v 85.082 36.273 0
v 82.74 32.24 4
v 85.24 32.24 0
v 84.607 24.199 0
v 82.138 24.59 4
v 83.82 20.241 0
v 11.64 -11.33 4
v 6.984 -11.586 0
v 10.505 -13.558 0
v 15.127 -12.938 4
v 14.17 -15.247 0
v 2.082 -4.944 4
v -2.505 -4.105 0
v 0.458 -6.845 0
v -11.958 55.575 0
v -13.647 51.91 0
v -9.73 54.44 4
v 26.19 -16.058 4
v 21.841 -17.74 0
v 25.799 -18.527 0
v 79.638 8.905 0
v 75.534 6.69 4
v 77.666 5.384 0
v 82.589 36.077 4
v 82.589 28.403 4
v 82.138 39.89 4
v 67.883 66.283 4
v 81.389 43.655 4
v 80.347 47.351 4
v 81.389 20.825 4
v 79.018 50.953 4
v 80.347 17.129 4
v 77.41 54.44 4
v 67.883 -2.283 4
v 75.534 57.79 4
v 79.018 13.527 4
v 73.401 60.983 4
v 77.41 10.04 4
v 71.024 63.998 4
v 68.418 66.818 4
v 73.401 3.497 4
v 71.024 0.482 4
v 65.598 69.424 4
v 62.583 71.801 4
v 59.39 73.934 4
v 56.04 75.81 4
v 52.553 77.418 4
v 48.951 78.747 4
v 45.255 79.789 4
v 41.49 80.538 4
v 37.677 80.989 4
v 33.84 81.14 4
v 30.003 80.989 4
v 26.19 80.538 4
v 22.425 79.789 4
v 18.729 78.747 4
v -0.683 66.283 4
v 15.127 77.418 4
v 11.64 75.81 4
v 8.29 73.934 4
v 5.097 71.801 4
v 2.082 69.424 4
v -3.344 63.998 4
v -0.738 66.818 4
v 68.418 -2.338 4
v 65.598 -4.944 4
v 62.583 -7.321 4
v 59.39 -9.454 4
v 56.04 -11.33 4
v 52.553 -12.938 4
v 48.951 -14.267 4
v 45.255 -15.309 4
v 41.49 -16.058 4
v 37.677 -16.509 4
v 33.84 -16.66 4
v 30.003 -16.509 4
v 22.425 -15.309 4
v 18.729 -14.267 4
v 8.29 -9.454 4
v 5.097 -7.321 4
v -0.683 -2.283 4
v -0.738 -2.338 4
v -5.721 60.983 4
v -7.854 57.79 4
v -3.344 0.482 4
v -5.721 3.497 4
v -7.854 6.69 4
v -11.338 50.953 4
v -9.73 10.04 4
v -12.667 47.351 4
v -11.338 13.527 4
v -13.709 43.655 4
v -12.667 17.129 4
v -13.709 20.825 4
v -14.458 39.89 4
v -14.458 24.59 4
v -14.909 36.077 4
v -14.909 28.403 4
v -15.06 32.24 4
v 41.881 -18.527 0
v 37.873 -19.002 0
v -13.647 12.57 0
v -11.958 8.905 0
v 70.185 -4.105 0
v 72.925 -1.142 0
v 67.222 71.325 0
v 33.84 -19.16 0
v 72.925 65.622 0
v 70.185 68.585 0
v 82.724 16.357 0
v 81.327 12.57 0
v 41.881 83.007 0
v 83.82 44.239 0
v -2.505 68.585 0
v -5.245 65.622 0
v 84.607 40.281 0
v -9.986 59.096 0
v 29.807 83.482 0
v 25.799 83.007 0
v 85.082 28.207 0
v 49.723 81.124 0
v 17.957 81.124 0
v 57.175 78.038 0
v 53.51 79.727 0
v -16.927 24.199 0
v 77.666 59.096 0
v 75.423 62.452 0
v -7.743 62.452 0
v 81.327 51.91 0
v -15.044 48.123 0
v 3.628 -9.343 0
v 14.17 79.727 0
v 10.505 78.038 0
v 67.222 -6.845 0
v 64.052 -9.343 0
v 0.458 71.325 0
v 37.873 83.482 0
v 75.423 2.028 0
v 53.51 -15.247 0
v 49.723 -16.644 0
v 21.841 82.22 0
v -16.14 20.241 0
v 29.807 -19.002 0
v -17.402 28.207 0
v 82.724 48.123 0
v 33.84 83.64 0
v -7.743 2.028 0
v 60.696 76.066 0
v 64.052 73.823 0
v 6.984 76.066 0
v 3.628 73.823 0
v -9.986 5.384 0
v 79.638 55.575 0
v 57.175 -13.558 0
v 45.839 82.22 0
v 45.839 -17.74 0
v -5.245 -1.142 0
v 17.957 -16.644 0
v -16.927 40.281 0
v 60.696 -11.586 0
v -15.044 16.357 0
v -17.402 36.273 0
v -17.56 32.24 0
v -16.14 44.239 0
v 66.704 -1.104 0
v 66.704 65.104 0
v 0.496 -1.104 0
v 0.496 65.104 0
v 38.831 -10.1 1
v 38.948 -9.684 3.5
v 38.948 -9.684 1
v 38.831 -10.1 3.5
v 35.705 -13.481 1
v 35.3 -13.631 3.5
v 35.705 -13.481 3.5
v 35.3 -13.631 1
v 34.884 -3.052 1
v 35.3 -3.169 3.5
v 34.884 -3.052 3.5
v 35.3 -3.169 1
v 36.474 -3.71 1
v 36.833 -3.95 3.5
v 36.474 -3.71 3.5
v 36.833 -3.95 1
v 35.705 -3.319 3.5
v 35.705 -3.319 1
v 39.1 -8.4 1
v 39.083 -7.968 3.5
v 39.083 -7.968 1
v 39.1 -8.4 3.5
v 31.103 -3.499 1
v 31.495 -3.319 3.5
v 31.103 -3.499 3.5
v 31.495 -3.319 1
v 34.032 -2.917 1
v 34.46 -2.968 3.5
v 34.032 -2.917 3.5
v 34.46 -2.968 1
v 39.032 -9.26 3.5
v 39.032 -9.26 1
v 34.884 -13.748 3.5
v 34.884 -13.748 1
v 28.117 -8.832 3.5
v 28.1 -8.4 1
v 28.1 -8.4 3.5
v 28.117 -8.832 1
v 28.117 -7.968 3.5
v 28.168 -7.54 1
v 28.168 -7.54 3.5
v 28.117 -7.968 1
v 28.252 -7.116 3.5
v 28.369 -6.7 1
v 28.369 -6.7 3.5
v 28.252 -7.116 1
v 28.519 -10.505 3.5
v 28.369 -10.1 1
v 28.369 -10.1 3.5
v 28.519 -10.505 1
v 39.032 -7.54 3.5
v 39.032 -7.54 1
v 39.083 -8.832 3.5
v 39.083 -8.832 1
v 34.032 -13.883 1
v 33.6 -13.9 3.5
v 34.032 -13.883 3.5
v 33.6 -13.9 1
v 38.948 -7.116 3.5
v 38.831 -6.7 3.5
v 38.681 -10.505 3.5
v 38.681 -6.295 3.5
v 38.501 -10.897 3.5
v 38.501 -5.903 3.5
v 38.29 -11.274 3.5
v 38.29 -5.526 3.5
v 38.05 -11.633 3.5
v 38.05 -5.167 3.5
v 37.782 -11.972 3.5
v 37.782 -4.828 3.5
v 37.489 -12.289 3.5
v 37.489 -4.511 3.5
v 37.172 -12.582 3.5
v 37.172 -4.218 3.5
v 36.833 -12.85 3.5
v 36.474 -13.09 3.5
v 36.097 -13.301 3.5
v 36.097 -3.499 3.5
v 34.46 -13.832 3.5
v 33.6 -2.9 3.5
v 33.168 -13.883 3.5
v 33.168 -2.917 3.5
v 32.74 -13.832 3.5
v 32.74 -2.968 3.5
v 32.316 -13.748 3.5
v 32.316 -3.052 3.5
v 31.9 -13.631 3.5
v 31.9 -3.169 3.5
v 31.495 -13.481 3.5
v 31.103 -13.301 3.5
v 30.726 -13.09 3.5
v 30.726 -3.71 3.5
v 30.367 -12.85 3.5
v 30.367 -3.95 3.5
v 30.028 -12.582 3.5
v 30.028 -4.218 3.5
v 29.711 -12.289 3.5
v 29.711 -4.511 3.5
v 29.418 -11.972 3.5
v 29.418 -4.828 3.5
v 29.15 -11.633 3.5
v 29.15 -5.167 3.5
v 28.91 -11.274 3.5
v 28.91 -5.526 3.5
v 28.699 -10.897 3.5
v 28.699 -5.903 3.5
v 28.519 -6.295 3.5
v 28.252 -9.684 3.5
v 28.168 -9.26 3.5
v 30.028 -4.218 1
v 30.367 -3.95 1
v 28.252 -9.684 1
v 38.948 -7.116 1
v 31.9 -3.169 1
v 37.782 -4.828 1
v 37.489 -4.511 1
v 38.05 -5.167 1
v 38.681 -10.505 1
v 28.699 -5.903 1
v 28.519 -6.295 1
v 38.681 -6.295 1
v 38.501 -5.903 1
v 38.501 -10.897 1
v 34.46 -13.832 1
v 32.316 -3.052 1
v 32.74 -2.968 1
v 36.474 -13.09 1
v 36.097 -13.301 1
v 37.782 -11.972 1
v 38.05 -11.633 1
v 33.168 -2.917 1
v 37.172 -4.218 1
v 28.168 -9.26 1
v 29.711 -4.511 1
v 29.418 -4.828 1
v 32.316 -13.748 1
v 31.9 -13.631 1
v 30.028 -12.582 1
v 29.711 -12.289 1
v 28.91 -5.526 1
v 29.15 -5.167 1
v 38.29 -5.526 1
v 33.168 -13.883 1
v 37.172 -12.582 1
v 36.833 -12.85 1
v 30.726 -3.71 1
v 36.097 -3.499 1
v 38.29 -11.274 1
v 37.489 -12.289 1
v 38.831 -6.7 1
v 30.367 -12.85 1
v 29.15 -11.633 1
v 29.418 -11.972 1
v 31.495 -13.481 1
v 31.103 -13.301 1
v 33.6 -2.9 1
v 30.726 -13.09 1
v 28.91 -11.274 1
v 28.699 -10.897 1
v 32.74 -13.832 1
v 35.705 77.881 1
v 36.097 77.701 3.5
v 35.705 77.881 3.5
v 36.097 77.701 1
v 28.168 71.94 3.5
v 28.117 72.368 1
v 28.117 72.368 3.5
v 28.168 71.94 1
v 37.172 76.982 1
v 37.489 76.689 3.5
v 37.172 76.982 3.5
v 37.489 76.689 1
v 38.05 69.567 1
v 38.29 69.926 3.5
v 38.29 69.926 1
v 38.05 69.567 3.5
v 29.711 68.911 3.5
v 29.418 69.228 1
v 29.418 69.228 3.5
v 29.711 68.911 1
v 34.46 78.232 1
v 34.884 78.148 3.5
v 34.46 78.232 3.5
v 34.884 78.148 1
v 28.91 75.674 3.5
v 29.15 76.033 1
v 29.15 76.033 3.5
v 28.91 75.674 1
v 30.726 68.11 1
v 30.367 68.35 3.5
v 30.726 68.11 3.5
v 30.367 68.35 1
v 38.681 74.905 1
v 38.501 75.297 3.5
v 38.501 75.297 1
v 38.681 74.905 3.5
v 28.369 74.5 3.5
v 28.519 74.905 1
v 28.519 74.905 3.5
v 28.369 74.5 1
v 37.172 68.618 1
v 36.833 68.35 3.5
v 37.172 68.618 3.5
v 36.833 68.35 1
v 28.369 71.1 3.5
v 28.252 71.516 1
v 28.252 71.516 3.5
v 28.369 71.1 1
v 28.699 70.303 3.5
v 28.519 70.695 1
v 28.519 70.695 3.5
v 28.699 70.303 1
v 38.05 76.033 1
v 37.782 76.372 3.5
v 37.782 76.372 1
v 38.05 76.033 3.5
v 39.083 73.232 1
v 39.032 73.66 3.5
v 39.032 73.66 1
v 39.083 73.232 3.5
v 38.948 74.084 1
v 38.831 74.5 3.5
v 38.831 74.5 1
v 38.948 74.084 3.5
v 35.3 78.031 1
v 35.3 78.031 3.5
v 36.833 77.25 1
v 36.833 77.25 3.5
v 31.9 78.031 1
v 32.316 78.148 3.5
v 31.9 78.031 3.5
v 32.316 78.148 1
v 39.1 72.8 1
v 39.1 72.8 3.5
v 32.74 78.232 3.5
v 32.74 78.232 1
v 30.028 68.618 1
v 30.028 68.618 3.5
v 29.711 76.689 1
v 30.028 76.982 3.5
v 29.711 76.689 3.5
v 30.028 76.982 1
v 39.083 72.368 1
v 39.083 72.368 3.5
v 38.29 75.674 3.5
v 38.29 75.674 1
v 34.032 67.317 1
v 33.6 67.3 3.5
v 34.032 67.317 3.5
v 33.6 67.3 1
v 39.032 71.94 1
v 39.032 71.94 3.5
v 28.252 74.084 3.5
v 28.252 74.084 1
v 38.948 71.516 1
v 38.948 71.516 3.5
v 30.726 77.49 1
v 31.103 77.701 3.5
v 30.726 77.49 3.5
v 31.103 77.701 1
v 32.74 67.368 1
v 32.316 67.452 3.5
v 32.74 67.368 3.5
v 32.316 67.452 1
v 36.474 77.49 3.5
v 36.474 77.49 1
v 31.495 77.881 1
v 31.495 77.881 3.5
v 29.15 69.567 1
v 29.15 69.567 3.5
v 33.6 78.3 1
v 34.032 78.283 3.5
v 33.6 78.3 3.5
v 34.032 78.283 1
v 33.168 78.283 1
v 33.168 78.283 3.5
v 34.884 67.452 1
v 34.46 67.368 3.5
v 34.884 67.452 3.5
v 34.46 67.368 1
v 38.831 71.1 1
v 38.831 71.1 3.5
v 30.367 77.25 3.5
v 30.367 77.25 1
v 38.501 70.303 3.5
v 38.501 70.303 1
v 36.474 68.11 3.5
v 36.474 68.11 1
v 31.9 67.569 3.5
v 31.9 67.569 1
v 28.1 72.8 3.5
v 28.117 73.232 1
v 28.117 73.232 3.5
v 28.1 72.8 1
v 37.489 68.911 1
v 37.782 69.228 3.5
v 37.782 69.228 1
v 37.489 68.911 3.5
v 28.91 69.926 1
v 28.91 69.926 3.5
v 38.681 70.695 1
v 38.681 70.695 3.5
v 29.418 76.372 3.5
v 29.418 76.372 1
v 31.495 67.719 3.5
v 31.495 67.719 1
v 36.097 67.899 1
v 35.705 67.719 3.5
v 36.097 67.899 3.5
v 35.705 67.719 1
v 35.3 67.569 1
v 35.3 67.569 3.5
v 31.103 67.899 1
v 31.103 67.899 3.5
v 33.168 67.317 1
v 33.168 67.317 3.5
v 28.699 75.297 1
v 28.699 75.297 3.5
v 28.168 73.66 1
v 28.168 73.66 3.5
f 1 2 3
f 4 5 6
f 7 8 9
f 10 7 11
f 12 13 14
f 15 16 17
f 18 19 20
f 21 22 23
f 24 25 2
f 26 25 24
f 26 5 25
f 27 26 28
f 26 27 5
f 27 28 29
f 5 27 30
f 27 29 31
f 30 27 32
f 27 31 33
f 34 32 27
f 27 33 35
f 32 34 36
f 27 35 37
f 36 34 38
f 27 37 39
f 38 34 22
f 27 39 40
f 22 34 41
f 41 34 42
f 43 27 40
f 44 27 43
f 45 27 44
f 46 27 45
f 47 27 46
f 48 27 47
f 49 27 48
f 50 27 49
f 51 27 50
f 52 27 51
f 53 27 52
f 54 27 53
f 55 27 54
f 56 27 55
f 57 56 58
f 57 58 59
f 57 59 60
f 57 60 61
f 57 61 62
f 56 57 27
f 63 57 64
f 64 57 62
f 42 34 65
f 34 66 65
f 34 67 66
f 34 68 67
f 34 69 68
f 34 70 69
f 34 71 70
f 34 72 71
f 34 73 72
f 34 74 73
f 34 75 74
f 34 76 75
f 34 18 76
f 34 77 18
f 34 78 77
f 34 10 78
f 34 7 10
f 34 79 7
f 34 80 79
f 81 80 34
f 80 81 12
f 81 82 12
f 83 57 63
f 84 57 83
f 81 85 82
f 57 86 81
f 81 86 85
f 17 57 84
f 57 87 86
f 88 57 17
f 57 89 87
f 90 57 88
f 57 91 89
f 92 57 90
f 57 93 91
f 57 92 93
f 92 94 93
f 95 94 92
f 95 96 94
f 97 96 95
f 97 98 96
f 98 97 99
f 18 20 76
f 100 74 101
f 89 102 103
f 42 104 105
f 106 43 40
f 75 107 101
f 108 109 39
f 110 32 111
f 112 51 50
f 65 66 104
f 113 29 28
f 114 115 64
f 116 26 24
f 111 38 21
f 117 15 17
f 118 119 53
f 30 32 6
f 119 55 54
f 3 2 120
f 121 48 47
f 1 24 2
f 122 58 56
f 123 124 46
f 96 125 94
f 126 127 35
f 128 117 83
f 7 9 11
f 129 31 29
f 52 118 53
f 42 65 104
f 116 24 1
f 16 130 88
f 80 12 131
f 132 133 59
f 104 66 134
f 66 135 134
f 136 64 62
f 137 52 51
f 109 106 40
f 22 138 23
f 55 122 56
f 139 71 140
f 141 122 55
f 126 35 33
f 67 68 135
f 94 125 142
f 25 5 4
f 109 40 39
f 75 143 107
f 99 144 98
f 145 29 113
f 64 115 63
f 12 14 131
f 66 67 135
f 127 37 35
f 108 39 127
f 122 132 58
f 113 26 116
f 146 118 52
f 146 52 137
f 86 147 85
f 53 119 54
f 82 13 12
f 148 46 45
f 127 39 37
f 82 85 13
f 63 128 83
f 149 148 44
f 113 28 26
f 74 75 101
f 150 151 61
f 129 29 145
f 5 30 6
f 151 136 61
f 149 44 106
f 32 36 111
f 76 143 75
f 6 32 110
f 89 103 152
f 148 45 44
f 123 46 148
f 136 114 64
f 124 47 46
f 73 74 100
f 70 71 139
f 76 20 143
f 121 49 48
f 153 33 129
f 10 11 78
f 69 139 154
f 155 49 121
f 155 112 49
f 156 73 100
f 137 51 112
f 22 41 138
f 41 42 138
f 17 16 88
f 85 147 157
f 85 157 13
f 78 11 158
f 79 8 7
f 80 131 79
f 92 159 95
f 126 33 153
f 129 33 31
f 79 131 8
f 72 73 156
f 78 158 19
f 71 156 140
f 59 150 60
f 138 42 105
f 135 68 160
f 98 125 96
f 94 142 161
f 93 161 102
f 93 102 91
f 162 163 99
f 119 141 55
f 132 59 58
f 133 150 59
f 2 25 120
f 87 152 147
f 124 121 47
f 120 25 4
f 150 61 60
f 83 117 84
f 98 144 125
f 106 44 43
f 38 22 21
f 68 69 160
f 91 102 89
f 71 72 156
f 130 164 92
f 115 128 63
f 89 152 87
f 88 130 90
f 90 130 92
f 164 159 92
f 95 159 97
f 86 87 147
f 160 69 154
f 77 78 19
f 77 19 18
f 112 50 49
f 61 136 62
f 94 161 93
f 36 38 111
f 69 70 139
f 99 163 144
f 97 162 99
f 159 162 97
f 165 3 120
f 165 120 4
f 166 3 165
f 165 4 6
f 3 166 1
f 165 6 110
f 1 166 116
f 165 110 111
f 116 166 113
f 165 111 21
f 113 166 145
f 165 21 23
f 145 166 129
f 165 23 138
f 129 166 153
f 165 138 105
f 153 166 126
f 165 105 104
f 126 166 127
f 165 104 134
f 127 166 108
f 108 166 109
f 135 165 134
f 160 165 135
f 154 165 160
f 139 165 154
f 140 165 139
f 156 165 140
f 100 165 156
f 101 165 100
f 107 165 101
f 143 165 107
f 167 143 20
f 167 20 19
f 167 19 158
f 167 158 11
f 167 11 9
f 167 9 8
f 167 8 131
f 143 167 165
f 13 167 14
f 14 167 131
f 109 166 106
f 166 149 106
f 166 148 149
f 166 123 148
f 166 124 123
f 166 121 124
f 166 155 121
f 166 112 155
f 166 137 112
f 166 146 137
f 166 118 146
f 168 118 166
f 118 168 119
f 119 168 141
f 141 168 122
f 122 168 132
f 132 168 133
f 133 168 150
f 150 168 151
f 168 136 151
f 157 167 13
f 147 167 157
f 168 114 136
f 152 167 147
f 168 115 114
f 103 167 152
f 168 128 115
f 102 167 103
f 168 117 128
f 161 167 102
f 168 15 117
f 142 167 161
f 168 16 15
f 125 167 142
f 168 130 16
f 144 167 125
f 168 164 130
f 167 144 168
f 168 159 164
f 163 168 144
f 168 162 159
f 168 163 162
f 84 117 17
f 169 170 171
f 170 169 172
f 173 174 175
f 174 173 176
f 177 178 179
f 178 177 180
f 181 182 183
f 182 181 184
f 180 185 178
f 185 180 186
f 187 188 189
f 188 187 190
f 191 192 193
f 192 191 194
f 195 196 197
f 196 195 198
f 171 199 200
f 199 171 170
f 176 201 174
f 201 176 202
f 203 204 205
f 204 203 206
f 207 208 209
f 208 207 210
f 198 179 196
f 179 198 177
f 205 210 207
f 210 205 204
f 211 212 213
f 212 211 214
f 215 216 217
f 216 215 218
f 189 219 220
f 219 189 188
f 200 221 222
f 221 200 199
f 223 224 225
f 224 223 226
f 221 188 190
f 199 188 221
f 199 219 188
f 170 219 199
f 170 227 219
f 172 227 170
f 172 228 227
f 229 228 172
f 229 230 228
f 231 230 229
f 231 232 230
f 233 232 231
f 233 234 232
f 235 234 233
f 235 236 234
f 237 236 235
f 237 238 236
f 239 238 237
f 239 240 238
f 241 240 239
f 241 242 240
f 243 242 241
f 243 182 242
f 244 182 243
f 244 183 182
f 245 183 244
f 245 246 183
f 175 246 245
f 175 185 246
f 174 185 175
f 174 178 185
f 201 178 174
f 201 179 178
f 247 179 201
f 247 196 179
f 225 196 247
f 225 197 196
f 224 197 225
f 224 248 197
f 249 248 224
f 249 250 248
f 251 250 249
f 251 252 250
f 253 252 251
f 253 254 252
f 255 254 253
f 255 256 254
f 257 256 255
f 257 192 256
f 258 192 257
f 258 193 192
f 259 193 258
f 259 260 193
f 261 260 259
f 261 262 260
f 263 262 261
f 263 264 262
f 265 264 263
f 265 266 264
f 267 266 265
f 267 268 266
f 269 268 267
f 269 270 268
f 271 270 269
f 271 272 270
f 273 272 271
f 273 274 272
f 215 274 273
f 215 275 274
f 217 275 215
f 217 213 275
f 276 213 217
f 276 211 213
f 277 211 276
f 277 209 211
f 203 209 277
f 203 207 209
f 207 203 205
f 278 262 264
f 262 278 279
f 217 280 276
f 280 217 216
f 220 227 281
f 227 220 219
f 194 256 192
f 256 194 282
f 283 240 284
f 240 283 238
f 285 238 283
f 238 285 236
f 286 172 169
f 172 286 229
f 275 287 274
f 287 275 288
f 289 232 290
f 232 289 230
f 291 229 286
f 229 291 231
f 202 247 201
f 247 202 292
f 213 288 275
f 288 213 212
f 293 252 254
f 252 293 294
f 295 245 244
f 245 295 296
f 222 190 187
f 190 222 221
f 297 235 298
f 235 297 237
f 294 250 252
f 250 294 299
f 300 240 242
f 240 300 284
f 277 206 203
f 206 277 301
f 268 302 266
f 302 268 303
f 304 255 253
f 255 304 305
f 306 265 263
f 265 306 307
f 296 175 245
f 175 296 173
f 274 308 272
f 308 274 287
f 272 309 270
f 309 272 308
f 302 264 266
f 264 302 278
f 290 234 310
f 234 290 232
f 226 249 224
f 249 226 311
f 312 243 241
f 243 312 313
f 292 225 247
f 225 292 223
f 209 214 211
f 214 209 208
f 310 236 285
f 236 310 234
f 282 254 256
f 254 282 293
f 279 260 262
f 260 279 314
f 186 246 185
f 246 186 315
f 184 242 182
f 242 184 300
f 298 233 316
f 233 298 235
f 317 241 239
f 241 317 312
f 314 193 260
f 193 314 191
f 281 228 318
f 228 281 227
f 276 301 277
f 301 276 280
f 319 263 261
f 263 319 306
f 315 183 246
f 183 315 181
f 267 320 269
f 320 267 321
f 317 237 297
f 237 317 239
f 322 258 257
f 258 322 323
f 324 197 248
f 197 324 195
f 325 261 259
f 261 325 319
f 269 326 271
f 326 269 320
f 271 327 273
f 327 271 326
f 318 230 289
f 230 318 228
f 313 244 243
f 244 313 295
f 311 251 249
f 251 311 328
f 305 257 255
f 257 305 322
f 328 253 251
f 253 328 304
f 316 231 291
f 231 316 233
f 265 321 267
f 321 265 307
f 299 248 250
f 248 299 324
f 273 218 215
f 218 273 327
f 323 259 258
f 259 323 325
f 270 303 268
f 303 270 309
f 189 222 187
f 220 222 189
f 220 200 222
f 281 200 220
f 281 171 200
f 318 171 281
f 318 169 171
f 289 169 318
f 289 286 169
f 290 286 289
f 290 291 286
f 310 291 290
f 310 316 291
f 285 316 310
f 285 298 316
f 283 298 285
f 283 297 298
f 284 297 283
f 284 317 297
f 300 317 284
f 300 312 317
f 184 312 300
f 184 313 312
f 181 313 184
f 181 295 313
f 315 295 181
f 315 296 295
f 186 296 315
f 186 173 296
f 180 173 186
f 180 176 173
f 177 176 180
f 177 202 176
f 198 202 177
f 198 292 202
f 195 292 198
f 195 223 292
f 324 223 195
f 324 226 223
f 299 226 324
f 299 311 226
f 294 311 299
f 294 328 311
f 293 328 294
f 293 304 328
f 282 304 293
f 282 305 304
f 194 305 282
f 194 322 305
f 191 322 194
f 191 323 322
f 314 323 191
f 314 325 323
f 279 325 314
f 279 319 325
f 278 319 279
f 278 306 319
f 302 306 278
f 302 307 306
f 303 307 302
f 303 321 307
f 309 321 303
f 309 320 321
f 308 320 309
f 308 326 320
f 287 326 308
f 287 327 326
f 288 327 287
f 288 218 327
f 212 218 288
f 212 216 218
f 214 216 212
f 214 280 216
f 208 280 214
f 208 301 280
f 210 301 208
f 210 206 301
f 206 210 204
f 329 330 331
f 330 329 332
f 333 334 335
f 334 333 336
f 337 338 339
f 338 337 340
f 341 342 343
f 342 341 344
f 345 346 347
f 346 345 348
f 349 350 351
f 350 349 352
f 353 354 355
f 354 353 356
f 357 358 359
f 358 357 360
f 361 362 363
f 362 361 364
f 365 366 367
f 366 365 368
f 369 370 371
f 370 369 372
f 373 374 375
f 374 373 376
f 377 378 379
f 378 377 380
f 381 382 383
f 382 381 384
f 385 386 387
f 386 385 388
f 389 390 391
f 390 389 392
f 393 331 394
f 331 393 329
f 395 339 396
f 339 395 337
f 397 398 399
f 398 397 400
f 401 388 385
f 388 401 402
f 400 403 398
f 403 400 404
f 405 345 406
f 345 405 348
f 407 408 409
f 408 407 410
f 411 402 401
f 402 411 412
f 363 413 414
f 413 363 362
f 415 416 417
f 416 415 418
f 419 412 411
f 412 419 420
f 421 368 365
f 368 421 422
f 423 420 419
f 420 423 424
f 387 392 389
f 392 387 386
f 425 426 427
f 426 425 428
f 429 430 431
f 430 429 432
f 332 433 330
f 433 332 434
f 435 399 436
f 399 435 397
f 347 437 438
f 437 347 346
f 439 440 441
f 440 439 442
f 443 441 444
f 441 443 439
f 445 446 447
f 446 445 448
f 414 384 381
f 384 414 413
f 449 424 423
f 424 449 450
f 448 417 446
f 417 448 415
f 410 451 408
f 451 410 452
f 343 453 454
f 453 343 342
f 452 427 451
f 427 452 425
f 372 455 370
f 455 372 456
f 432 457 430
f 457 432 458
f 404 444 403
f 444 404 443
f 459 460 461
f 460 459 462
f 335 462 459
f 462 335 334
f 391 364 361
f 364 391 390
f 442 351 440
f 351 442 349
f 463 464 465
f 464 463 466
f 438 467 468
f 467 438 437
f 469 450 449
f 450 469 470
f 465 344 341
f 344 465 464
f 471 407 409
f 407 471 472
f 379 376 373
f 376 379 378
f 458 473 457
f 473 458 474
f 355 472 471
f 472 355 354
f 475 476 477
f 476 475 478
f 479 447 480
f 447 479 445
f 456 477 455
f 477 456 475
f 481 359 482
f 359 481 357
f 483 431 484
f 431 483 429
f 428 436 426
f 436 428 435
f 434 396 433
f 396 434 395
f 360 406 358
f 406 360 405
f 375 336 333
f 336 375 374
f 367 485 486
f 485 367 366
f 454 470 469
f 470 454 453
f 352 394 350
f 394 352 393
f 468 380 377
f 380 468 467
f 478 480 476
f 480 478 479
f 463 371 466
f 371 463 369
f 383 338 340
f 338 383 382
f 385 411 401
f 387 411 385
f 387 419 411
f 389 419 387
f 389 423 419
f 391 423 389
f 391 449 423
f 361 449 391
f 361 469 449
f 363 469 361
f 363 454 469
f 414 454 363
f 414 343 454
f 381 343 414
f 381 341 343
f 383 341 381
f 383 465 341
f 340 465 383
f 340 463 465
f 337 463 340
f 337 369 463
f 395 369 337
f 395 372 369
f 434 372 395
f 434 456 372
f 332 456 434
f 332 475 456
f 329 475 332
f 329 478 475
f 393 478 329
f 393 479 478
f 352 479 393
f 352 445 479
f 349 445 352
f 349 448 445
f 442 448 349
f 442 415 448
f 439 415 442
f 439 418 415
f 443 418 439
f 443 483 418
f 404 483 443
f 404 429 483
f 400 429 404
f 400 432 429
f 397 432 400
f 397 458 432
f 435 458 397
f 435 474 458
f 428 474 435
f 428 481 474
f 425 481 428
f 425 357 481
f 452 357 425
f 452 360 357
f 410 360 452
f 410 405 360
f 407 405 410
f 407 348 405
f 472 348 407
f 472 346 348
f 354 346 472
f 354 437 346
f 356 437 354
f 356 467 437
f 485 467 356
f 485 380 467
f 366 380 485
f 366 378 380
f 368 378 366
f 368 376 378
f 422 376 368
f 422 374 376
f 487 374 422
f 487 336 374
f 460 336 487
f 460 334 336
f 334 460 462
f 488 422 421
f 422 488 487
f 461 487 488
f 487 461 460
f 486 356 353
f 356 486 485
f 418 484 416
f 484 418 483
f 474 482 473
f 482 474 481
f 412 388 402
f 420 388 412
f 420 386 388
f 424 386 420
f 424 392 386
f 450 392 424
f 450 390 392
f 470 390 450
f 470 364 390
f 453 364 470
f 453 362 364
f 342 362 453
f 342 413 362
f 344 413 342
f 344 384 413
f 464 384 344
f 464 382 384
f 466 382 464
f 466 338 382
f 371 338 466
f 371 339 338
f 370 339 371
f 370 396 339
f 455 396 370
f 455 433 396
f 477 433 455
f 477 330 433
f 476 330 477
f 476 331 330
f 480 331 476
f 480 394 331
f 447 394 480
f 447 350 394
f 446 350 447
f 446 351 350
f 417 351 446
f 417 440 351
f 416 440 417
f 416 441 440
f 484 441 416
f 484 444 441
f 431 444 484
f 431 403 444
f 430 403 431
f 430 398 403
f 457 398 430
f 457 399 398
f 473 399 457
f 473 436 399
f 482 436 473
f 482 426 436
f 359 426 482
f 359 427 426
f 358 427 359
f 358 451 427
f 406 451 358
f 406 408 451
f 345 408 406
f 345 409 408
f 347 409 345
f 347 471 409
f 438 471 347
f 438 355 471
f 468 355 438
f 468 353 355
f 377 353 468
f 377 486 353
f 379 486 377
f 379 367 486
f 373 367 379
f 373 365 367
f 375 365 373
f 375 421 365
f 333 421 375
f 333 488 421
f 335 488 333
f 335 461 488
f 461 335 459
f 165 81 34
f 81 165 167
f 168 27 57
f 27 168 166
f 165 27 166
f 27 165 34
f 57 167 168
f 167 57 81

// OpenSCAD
$fn = 80;

walls = 1.2;
screen = .4;
led_x = 8.4;
led_y = 8.0;
led_d = sqrt (led_x * led_x + led_y * led_y);
led_scale_x = 1;
led_scale_y = led_y / led_x;

module
magnet_hole ()
{
  translate ([ 0, 0, 1 ]) cylinder (h = 2.5, r = 5.5);
}

difference ()
{
  translate ([ led_x * 4 + walls / 5, led_y * 4 + walls / 5, 0 ])
      cylinder (h = 4, d1 = led_d * 8 + 10, d2 = led_d * 8 + 5);
  translate ([ 4 * led_x, -7.2 - walls, 0 ]) magnet_hole ();
  translate ([ 4 * led_x, 8 * led_y + walls + 7.6, 0 ]) magnet_hole ();

  translate ([ led_x * 4, led_y * 4, -1 ]) rotate (45)
      cylinder (h = 6, d1 = led_d * 8, d2 = led_d * 8 + 5, $fn = 4);
}
